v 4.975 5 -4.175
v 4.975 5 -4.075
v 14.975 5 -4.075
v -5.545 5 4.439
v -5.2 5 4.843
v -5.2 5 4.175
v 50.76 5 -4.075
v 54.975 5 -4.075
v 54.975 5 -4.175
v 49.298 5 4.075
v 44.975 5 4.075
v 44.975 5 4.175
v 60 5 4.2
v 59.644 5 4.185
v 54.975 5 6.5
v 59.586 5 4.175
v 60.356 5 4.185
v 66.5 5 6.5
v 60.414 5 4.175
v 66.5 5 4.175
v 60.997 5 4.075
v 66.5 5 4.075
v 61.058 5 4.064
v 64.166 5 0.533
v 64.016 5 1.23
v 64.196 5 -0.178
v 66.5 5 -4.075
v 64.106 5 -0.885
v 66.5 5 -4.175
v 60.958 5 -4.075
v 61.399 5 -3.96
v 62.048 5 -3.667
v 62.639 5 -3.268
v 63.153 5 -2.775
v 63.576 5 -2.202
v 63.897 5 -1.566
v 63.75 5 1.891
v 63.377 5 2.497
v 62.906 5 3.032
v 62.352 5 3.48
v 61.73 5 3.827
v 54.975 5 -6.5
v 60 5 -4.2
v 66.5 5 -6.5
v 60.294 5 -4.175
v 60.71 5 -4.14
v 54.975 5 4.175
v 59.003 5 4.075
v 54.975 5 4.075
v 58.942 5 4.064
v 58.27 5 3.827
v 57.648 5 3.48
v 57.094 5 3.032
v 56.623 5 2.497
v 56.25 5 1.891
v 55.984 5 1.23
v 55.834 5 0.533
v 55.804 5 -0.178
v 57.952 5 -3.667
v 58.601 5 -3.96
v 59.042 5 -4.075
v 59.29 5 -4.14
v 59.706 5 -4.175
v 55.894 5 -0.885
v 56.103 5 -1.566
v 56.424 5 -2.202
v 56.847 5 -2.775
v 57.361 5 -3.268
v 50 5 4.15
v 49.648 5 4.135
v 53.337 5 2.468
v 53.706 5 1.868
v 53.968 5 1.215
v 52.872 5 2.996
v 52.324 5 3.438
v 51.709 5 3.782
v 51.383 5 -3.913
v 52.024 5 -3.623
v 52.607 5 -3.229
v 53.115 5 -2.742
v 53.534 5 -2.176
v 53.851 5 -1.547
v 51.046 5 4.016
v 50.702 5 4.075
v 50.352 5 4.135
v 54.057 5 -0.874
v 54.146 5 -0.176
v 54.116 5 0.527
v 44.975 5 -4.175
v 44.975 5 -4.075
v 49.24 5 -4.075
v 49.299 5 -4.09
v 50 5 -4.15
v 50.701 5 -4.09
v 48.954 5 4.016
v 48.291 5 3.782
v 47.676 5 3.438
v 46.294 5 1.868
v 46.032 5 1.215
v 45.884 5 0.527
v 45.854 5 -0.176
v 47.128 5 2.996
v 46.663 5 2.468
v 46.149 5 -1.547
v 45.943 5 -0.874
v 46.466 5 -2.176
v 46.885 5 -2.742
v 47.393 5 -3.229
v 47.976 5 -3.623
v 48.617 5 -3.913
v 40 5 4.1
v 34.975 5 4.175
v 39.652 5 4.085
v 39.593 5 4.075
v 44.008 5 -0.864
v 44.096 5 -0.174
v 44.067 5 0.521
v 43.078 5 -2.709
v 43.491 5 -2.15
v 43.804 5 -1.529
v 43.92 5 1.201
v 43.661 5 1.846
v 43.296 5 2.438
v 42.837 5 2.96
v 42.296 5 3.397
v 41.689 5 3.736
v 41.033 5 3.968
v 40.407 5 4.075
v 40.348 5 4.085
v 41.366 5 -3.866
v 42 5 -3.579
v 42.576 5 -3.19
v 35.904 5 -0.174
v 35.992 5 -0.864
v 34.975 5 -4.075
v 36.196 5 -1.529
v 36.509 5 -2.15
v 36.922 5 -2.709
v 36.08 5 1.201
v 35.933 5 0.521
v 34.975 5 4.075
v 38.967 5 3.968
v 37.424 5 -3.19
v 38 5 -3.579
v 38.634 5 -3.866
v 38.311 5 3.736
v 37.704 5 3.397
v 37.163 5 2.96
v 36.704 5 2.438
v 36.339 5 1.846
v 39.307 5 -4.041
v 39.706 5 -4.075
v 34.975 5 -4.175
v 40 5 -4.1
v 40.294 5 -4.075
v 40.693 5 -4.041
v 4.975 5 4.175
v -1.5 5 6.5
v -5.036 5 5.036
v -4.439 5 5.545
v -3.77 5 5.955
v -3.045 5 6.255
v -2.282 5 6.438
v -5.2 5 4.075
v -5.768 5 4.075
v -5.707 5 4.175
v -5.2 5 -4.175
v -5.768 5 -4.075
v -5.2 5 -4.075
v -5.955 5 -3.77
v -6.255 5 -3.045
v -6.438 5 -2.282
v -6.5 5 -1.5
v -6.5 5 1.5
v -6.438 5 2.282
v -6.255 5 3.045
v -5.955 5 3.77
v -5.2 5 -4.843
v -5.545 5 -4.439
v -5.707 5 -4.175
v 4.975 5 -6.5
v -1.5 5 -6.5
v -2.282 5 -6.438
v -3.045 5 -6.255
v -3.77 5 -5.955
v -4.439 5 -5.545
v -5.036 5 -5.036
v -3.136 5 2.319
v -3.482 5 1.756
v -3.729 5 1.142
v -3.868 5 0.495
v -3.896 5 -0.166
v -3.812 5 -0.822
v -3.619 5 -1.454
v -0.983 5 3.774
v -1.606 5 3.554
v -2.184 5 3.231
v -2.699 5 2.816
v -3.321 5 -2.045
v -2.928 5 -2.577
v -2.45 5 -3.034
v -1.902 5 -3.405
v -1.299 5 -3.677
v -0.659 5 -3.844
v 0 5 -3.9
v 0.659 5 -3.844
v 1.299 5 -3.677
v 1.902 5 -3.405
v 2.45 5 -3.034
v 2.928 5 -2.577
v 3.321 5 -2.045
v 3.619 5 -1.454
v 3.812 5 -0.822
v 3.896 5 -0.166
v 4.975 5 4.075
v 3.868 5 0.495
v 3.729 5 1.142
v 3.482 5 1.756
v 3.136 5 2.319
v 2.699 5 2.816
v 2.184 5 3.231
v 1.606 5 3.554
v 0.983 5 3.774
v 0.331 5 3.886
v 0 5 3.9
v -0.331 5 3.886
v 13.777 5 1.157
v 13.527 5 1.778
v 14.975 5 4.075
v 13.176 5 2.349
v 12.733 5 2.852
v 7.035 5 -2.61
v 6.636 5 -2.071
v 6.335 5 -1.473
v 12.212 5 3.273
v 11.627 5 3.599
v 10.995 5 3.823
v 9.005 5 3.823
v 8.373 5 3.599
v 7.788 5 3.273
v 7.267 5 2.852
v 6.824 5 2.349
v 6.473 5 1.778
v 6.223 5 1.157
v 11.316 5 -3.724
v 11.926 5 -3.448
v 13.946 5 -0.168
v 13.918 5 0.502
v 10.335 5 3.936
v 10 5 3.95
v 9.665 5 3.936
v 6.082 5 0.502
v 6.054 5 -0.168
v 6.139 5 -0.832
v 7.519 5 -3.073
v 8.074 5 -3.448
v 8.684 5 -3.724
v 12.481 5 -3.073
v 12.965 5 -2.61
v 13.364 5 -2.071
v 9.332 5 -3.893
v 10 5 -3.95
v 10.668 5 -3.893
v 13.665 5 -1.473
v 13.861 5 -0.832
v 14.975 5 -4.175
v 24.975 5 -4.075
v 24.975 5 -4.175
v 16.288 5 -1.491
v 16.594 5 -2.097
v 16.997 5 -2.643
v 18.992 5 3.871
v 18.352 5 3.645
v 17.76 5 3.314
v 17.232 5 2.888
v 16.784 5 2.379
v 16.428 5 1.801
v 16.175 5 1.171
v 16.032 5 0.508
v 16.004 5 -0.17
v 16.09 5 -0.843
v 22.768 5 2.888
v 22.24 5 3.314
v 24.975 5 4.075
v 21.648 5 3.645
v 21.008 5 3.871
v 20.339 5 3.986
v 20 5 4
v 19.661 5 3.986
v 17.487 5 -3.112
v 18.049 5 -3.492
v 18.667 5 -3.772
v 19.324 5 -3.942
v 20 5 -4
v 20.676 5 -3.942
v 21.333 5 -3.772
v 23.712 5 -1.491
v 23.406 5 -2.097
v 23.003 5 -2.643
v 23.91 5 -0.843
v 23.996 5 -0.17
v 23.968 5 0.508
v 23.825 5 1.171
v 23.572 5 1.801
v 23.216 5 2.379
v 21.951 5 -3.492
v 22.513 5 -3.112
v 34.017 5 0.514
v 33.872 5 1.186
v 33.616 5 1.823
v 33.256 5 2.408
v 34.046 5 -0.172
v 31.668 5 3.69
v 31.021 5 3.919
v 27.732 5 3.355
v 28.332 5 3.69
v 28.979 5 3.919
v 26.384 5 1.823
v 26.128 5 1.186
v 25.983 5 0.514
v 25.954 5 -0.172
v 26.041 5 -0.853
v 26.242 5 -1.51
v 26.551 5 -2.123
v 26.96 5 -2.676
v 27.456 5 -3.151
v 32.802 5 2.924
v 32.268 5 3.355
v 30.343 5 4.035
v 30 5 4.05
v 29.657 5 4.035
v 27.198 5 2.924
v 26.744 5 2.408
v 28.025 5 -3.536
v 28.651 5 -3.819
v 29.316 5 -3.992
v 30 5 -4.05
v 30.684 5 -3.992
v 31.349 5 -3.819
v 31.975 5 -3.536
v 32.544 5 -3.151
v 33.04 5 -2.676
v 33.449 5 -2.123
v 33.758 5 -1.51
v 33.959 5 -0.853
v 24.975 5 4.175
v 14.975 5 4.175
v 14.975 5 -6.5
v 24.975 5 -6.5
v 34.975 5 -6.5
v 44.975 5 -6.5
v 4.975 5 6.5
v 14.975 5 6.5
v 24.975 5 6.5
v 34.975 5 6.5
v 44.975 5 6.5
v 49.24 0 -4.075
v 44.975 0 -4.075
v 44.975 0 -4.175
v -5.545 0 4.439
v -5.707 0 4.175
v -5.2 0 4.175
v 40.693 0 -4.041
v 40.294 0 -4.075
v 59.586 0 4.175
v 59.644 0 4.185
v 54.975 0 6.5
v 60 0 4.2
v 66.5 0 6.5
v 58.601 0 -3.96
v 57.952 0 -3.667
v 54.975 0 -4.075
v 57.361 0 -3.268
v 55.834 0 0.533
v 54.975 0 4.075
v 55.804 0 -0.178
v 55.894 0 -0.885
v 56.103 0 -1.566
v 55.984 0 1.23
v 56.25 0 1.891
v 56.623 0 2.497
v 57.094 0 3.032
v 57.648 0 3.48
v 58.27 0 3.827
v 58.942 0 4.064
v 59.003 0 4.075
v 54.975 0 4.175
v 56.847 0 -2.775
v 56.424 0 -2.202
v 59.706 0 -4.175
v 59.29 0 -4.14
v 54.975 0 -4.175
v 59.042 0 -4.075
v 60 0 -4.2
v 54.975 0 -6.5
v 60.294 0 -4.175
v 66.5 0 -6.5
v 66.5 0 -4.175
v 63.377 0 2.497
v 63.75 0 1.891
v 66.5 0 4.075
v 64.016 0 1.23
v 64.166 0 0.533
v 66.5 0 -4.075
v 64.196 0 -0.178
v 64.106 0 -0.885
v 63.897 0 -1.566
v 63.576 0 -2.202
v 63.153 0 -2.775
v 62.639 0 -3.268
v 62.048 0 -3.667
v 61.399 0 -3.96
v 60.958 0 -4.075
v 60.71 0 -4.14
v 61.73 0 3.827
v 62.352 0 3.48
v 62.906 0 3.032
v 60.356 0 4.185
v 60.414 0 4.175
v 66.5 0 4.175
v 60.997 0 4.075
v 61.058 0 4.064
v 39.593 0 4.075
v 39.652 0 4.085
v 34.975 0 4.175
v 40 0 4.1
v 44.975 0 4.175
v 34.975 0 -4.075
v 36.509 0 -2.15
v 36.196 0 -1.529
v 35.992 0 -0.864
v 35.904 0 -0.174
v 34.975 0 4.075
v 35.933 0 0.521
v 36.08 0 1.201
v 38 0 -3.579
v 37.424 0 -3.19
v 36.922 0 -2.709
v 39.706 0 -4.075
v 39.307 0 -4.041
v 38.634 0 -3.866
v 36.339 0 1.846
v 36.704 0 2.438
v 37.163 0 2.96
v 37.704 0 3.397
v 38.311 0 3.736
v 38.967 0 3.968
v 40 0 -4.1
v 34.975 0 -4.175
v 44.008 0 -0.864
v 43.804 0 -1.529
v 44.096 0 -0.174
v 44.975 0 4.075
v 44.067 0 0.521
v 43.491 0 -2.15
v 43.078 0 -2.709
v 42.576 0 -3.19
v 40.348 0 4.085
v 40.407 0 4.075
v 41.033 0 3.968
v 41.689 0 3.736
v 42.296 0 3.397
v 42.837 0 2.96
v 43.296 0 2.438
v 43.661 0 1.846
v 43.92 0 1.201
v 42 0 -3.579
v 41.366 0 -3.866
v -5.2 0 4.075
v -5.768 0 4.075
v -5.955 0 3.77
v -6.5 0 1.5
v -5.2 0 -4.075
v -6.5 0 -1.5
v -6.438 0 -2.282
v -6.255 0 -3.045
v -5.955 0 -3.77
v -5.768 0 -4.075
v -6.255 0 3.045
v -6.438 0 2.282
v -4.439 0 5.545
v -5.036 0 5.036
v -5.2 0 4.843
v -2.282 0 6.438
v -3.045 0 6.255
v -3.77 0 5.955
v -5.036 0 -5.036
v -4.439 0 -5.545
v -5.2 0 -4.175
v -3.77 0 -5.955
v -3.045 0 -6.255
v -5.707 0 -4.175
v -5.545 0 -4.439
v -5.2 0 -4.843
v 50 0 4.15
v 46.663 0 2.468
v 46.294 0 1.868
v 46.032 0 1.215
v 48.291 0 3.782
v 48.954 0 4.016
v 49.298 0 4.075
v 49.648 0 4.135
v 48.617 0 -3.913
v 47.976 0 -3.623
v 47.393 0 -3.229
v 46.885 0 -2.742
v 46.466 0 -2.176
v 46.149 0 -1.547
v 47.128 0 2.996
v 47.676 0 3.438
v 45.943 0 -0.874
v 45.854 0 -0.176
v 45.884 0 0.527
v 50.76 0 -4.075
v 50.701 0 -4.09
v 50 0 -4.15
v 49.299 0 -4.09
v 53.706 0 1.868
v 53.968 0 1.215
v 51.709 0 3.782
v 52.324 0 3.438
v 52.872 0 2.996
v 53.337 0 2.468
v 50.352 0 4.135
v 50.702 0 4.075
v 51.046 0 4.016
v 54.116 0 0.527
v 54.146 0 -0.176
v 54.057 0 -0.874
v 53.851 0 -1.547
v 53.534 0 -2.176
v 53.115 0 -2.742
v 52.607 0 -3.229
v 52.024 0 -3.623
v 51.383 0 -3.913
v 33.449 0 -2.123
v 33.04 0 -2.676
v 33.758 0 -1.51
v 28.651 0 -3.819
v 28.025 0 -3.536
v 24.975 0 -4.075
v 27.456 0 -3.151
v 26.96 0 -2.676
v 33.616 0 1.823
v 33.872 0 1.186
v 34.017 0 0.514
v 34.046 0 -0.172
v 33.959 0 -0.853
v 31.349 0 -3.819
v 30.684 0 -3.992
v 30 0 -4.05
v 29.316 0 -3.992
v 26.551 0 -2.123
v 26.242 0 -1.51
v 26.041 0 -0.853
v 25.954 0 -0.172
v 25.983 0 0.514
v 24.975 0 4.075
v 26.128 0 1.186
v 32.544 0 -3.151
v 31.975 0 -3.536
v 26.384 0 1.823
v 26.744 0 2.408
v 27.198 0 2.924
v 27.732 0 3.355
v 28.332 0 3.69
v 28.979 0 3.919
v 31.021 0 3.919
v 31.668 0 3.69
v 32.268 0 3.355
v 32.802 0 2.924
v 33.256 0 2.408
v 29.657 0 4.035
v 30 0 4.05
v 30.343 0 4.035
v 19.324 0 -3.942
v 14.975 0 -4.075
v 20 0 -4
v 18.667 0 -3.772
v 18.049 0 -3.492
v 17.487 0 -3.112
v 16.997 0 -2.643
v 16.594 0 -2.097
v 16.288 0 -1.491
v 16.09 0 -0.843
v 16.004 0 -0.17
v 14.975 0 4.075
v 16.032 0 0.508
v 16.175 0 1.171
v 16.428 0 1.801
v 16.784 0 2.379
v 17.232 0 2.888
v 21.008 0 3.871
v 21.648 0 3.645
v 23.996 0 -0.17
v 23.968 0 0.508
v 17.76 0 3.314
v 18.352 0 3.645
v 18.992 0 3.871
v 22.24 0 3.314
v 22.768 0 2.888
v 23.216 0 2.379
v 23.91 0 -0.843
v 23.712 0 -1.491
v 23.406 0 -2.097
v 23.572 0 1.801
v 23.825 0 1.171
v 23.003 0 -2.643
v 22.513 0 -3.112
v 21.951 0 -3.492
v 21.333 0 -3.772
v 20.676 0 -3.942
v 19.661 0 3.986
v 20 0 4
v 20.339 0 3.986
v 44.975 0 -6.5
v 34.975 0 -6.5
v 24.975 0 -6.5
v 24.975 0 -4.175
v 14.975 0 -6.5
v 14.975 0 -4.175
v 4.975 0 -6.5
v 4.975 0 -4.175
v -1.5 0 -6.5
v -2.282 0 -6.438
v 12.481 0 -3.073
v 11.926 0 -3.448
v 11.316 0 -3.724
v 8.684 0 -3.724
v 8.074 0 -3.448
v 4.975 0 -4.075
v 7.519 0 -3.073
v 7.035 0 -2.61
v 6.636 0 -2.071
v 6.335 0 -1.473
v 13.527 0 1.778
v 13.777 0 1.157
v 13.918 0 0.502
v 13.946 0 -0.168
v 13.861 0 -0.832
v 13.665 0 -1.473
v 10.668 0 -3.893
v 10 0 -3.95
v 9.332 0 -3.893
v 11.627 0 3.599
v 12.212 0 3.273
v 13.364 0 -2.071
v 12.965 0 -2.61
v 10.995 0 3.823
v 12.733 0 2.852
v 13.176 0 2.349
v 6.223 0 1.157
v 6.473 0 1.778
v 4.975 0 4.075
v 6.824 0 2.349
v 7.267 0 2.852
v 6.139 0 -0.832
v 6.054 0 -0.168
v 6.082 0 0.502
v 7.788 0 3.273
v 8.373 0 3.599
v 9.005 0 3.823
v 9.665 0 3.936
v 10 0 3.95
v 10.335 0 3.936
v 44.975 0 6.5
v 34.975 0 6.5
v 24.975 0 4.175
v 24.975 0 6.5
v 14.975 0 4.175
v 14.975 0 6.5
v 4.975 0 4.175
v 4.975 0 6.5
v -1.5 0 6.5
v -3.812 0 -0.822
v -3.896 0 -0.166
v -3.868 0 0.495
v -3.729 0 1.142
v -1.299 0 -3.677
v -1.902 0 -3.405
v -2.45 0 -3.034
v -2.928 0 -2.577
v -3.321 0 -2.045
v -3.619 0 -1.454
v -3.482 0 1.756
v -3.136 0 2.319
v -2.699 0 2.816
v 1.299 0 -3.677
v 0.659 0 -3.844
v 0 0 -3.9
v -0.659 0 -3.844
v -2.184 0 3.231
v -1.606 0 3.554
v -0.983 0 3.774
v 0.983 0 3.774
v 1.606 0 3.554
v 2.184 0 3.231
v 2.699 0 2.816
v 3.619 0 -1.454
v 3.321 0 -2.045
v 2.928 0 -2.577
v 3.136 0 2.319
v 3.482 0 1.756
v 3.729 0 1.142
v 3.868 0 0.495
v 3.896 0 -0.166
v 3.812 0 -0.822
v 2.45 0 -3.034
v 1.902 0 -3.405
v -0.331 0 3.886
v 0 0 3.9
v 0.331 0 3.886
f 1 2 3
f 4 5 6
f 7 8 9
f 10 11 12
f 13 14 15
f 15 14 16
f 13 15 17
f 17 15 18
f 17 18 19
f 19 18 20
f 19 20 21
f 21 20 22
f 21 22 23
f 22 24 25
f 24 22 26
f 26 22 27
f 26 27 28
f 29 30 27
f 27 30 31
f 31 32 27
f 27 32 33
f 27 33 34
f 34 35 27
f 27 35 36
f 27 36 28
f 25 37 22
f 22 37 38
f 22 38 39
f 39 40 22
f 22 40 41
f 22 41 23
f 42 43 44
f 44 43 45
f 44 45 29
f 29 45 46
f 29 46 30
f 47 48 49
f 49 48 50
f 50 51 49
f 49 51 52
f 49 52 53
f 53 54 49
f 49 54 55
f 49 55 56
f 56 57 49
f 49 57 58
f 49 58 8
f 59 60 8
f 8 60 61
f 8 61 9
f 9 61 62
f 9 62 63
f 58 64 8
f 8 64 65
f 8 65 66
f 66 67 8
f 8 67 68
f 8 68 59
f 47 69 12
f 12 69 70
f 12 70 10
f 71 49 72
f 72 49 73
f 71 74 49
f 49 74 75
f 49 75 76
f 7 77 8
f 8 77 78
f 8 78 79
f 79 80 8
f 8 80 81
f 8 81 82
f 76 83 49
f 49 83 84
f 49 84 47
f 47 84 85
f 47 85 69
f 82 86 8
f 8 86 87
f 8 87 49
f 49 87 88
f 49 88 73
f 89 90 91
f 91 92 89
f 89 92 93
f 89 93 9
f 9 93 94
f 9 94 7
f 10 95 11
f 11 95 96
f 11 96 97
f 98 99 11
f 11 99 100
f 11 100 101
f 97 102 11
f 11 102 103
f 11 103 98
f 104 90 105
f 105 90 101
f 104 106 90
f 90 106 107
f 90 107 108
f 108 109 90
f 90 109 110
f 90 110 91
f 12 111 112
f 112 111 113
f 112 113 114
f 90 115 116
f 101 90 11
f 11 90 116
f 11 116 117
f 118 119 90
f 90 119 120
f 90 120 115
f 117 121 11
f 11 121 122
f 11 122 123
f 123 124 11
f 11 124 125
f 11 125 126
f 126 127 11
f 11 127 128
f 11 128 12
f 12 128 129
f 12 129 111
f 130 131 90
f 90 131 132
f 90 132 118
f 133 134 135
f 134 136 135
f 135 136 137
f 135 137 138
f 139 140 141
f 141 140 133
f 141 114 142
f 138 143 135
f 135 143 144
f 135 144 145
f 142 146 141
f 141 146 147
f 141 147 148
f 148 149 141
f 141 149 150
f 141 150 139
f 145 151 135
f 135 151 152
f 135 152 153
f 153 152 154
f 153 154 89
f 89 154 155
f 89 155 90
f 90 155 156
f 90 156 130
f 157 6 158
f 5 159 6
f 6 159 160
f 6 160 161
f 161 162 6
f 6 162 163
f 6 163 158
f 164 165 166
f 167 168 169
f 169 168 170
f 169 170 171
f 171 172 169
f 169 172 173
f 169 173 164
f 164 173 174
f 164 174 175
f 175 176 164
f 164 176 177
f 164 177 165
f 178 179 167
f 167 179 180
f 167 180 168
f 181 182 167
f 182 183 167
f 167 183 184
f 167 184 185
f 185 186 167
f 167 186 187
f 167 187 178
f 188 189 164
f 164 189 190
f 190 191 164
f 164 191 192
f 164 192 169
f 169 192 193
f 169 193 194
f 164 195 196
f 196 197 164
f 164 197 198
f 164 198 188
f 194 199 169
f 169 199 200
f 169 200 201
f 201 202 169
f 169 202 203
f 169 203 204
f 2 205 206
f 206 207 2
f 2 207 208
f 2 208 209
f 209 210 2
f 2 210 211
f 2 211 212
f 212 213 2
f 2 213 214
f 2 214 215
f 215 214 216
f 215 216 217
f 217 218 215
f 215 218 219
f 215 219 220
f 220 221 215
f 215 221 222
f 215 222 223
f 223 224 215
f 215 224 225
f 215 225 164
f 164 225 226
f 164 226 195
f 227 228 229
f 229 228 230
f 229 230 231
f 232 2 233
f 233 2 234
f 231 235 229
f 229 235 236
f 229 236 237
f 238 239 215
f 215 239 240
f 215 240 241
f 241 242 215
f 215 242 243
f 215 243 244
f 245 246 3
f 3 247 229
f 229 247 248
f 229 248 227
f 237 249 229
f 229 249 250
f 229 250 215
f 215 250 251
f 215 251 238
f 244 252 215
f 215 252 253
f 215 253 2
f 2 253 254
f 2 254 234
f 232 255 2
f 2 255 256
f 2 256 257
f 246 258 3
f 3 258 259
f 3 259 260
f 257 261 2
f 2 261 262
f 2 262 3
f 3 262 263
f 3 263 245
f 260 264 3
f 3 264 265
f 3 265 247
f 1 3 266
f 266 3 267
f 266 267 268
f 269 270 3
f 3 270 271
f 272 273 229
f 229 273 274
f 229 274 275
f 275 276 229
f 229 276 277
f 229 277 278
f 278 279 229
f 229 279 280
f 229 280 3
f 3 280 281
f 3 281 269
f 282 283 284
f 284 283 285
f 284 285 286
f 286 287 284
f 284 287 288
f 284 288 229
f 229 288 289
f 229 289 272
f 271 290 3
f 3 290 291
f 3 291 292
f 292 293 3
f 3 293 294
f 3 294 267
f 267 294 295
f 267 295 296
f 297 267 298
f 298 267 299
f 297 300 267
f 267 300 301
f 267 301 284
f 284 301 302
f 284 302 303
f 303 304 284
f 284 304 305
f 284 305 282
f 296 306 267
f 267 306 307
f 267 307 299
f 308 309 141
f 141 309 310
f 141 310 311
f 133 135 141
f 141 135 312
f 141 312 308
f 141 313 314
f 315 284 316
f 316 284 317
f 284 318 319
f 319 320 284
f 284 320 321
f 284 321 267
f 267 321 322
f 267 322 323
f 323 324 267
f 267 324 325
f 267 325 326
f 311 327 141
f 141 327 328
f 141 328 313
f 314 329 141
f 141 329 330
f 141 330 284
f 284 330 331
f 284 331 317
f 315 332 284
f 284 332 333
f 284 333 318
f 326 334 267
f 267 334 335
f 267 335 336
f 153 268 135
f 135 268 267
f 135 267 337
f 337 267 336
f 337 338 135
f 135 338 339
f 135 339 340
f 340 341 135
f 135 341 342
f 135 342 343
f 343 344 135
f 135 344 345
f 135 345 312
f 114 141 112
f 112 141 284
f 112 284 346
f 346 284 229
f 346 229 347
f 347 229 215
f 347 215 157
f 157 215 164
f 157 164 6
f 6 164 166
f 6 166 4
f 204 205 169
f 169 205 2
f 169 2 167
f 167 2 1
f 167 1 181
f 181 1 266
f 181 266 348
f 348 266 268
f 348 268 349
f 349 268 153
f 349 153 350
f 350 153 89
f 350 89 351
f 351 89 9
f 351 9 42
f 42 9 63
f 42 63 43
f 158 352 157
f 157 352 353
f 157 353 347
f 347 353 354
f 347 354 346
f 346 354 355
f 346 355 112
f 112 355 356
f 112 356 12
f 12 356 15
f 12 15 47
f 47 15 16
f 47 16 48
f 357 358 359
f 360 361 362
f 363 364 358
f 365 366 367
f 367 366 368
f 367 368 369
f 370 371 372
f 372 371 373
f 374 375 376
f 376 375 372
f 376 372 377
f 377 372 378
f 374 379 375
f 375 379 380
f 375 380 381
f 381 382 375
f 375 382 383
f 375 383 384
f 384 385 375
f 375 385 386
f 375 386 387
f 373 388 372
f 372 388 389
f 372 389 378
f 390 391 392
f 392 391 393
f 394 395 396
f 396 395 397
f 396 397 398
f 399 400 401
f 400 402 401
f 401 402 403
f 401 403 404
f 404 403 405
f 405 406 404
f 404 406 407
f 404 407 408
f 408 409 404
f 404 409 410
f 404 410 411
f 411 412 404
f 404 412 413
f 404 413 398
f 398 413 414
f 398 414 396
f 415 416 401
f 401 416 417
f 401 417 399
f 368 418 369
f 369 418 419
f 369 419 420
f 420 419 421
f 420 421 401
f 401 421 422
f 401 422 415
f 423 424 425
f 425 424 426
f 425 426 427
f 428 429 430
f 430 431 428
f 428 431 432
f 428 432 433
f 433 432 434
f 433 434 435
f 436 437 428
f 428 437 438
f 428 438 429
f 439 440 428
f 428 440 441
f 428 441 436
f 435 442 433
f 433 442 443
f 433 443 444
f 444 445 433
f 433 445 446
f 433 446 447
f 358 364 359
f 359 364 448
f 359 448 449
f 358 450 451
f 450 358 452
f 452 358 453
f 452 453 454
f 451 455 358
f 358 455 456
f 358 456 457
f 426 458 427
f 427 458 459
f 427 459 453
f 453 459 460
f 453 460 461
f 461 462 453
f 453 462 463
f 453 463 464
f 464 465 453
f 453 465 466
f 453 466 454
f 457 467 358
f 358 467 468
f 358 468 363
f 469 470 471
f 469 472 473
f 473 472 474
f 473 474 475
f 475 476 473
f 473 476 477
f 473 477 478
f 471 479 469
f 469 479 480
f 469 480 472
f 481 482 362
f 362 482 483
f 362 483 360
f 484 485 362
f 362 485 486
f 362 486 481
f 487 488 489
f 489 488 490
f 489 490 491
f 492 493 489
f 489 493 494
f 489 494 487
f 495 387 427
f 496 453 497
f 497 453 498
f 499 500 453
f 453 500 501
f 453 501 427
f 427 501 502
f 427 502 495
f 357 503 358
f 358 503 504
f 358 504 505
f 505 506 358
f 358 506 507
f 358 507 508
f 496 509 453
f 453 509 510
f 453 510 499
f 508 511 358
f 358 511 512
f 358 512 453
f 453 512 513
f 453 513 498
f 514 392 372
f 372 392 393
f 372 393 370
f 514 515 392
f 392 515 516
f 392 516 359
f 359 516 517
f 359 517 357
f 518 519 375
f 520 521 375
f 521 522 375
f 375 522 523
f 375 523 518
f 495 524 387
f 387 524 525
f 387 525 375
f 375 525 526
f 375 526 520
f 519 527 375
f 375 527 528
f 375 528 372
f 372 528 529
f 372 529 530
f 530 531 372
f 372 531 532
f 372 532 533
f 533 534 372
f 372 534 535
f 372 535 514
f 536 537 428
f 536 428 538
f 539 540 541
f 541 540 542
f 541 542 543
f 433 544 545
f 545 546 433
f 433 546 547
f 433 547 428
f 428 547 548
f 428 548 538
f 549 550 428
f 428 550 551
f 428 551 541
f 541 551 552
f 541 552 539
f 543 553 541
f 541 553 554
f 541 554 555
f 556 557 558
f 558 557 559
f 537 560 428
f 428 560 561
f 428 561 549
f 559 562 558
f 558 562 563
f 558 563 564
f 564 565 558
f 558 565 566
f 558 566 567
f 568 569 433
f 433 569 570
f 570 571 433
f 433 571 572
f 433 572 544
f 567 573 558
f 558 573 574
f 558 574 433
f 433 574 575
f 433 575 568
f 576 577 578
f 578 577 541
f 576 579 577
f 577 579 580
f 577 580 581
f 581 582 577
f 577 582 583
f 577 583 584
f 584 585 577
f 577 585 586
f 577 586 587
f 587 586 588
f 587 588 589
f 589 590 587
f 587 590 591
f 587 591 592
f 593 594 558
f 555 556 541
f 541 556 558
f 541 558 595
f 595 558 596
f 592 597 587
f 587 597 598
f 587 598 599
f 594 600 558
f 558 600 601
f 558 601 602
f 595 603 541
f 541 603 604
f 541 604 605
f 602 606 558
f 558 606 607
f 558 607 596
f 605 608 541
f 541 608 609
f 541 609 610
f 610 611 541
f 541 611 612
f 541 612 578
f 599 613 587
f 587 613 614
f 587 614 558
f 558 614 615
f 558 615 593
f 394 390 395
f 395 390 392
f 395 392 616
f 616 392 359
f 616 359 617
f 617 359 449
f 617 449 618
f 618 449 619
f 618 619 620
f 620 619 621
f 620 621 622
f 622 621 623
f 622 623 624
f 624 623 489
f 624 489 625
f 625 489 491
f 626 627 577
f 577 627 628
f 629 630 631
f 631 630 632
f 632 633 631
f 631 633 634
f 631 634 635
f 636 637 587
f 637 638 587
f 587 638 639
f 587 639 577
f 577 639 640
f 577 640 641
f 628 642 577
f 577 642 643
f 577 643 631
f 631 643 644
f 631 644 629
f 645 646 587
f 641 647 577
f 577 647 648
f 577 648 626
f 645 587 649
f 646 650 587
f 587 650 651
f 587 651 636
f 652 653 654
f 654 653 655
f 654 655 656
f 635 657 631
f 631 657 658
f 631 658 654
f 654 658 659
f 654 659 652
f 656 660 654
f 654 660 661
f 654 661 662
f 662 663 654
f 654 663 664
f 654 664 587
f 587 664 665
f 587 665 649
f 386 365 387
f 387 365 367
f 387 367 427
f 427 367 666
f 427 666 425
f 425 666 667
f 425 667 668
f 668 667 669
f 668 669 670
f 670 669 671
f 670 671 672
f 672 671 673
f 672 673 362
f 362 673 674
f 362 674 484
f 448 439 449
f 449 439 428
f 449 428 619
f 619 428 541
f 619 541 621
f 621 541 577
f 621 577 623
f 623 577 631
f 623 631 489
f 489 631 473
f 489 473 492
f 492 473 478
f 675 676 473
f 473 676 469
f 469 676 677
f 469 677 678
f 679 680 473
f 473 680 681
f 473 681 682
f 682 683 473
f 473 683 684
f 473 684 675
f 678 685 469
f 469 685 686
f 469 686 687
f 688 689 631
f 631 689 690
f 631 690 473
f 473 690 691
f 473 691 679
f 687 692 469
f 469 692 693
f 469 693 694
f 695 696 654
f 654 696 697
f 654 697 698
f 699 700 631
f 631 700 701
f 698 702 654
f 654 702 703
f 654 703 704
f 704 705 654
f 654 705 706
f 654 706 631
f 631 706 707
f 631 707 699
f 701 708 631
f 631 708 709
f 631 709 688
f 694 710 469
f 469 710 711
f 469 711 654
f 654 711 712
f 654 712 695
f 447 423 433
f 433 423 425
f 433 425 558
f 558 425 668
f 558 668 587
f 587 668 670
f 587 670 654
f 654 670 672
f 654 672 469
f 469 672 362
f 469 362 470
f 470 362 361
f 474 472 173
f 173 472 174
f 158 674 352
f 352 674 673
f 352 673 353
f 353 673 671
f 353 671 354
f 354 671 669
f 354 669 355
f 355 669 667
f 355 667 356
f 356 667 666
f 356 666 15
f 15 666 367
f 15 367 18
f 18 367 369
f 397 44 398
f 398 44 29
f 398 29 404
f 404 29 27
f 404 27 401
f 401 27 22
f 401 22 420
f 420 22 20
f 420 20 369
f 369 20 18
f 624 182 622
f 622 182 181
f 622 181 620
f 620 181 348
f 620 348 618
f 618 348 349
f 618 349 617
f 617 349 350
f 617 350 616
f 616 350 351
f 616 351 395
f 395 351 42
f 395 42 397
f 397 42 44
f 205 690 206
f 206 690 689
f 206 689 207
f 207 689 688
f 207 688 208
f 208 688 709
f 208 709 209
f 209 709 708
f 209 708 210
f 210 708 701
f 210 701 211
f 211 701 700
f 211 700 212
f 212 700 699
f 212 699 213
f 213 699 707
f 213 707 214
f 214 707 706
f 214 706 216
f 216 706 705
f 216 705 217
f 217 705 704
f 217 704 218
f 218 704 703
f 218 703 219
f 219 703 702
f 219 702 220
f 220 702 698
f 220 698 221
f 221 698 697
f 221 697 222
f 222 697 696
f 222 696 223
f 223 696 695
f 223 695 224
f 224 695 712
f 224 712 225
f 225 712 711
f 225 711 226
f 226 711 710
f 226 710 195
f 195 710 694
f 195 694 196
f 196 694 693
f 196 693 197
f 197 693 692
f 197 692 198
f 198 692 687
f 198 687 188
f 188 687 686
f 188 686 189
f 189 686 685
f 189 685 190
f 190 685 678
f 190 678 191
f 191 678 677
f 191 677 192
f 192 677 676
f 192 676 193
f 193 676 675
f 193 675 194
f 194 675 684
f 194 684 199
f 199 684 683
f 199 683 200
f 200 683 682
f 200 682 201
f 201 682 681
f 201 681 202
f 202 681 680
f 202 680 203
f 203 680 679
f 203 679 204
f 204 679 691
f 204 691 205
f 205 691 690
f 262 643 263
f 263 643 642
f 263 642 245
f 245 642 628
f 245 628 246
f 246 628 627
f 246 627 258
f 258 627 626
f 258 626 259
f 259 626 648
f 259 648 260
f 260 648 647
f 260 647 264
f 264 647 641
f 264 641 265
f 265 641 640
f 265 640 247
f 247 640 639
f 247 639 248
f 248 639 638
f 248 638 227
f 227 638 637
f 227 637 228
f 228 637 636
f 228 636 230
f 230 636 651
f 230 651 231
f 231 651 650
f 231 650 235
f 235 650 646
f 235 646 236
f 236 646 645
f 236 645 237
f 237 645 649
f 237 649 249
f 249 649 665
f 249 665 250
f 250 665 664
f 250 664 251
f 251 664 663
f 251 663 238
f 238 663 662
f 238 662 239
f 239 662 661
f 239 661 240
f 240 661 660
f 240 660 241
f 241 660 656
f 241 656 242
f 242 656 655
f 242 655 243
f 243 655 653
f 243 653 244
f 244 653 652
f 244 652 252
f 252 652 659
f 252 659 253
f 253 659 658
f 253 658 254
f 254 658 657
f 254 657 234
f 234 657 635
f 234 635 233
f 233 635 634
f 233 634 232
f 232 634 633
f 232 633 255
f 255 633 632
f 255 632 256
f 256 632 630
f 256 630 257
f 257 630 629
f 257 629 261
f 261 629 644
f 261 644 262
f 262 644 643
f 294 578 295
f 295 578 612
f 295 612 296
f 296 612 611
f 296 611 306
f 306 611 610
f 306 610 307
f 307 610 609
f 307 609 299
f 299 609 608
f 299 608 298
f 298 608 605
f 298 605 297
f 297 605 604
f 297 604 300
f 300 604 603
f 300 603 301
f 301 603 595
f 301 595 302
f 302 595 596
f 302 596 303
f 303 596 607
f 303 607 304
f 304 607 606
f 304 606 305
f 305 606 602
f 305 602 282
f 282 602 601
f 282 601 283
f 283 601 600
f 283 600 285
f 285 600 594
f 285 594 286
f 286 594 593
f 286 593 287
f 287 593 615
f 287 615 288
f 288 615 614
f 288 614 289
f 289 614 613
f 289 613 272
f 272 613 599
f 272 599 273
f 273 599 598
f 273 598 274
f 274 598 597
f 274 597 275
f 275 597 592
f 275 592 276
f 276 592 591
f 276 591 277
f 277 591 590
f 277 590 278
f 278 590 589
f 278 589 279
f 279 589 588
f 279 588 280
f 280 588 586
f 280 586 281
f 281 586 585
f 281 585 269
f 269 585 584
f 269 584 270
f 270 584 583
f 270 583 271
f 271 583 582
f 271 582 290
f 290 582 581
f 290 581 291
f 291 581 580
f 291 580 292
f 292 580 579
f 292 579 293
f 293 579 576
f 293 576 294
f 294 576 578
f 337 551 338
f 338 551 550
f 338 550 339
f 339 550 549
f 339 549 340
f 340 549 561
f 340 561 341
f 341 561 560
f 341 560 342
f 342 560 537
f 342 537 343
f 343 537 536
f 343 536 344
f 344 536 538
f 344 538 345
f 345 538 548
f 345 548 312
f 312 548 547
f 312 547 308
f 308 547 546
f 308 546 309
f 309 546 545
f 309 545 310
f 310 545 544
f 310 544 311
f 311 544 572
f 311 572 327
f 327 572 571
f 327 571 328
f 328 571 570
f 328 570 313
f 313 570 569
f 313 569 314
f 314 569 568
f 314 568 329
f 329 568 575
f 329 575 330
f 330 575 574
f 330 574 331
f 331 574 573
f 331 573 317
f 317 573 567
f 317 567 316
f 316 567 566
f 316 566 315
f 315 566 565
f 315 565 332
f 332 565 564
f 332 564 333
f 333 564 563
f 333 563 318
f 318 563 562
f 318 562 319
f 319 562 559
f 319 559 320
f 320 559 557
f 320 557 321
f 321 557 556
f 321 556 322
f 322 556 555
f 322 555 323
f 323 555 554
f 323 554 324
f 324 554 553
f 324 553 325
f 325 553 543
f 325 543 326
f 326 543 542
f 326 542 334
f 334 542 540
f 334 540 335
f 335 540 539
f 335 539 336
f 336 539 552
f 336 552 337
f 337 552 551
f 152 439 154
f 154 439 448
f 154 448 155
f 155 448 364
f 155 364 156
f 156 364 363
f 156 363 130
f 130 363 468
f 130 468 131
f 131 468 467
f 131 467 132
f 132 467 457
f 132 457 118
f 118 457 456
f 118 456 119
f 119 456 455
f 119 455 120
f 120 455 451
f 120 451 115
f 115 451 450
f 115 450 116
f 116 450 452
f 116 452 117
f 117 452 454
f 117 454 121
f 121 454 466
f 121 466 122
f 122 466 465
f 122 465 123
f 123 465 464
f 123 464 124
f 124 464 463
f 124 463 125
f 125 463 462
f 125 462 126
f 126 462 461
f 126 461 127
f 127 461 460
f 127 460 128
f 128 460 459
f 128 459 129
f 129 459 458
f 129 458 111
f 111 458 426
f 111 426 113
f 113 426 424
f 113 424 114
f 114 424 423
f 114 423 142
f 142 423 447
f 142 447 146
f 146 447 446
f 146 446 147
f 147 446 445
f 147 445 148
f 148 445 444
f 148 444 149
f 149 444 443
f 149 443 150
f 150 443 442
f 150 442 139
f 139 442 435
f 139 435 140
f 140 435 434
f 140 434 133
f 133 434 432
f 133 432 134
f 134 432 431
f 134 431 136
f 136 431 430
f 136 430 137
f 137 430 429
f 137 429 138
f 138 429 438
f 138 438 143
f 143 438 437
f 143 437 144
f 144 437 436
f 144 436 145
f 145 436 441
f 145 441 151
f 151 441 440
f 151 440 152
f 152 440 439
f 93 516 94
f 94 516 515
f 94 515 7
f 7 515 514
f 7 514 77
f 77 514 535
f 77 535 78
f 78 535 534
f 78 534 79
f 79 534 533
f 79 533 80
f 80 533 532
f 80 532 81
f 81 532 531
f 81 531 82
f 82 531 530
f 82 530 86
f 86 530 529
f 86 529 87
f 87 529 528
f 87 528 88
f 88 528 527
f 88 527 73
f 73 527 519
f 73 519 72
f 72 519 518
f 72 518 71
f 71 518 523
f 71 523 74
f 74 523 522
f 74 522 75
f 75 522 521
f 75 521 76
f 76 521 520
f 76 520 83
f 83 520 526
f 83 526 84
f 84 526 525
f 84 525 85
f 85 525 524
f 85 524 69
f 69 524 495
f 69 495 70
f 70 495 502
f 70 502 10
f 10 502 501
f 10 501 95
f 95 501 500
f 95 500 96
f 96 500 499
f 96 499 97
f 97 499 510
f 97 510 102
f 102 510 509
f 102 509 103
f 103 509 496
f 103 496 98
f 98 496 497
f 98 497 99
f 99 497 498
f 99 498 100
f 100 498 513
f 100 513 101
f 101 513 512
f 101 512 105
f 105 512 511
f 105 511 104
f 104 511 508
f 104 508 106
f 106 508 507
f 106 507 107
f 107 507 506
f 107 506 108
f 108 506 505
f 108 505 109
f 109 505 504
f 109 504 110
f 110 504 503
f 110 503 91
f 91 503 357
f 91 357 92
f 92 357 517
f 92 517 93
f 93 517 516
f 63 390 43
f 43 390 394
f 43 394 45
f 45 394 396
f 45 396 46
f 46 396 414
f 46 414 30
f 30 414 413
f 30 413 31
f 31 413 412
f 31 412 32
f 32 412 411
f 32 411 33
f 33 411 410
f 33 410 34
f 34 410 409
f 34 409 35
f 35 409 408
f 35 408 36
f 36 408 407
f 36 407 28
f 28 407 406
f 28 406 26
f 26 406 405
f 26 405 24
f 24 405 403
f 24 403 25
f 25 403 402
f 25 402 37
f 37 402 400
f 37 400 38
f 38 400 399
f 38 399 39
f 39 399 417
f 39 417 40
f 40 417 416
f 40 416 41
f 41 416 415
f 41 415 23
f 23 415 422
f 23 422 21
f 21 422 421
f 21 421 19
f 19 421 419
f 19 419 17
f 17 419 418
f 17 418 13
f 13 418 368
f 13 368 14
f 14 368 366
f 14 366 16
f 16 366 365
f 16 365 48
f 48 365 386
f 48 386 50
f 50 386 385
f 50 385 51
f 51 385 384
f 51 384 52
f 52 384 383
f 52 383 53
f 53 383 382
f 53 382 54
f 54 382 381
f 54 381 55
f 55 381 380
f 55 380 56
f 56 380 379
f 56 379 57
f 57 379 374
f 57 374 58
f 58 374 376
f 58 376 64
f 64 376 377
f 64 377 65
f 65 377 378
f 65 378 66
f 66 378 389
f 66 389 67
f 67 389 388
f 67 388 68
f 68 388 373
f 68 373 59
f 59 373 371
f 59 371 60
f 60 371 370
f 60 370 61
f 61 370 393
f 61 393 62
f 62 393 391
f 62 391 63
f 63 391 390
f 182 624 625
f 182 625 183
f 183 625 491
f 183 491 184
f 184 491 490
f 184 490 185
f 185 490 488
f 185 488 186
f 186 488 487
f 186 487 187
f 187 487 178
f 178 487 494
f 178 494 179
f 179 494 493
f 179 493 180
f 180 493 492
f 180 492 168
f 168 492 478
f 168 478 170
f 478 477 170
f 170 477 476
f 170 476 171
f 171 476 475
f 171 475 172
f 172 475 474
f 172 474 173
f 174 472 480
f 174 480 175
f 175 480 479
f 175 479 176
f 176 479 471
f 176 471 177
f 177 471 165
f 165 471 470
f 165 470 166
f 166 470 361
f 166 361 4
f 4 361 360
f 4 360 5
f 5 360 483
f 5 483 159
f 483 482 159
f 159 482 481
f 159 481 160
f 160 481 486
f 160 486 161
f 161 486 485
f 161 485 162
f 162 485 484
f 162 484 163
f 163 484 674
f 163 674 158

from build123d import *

# Parameters (mm, degrees)
SKETCH2_W           = 73
SKETCH2_H           = 13
SKETCH2_R           = 3.9
SKETCH2_R_2         = 3.95
SKETCH2_R_3         = 4
SKETCH2_R_4         = 4.05
SKETCH2_R_5         = 4.1
SKETCH2_R_6         = 4.15
SKETCH2_R_7         = 4.2
BOSS_EXTRUDE1_DEPTH = 5
FILLET1_R           = 5


with BuildPart() as part:
    # Sketch2 → Boss-Extrude1 (new body)
    with BuildSketch(Plane(origin=(0, 0, 0), x_dir=(1, 0, 0), z_dir=(0, 1, 0))):
        with Locations((30, 0)):
            Rectangle(SKETCH2_W, SKETCH2_H)
        Circle(SKETCH2_R, mode=Mode.SUBTRACT)
        with Locations((10, 0)):
            Circle(SKETCH2_R_2, mode=Mode.SUBTRACT)
        with Locations((20, 0)):
            Circle(SKETCH2_R_3, mode=Mode.SUBTRACT)
        with Locations((30, 0)):
            Circle(SKETCH2_R_4, mode=Mode.SUBTRACT)
        with Locations((40, 0)):
            Circle(SKETCH2_R_5, mode=Mode.SUBTRACT)
        with Locations((50, 0)):
            Circle(SKETCH2_R_6, mode=Mode.SUBTRACT)
        with Locations((60, 0)):
            Circle(SKETCH2_R_7, mode=Mode.SUBTRACT)
    extrude(amount=BOSS_EXTRUDE1_DEPTH)

    # Fillet1
    fillet1_edges = [part.edges().sort_by_distance(p)[0] for p in [
        (-6.5, 2.5, -6.5),
        (-6.5, 2.5, 6.5),
    ]]
    fillet(fillet1_edges, radius=FILLET1_R)


solid = part.part
